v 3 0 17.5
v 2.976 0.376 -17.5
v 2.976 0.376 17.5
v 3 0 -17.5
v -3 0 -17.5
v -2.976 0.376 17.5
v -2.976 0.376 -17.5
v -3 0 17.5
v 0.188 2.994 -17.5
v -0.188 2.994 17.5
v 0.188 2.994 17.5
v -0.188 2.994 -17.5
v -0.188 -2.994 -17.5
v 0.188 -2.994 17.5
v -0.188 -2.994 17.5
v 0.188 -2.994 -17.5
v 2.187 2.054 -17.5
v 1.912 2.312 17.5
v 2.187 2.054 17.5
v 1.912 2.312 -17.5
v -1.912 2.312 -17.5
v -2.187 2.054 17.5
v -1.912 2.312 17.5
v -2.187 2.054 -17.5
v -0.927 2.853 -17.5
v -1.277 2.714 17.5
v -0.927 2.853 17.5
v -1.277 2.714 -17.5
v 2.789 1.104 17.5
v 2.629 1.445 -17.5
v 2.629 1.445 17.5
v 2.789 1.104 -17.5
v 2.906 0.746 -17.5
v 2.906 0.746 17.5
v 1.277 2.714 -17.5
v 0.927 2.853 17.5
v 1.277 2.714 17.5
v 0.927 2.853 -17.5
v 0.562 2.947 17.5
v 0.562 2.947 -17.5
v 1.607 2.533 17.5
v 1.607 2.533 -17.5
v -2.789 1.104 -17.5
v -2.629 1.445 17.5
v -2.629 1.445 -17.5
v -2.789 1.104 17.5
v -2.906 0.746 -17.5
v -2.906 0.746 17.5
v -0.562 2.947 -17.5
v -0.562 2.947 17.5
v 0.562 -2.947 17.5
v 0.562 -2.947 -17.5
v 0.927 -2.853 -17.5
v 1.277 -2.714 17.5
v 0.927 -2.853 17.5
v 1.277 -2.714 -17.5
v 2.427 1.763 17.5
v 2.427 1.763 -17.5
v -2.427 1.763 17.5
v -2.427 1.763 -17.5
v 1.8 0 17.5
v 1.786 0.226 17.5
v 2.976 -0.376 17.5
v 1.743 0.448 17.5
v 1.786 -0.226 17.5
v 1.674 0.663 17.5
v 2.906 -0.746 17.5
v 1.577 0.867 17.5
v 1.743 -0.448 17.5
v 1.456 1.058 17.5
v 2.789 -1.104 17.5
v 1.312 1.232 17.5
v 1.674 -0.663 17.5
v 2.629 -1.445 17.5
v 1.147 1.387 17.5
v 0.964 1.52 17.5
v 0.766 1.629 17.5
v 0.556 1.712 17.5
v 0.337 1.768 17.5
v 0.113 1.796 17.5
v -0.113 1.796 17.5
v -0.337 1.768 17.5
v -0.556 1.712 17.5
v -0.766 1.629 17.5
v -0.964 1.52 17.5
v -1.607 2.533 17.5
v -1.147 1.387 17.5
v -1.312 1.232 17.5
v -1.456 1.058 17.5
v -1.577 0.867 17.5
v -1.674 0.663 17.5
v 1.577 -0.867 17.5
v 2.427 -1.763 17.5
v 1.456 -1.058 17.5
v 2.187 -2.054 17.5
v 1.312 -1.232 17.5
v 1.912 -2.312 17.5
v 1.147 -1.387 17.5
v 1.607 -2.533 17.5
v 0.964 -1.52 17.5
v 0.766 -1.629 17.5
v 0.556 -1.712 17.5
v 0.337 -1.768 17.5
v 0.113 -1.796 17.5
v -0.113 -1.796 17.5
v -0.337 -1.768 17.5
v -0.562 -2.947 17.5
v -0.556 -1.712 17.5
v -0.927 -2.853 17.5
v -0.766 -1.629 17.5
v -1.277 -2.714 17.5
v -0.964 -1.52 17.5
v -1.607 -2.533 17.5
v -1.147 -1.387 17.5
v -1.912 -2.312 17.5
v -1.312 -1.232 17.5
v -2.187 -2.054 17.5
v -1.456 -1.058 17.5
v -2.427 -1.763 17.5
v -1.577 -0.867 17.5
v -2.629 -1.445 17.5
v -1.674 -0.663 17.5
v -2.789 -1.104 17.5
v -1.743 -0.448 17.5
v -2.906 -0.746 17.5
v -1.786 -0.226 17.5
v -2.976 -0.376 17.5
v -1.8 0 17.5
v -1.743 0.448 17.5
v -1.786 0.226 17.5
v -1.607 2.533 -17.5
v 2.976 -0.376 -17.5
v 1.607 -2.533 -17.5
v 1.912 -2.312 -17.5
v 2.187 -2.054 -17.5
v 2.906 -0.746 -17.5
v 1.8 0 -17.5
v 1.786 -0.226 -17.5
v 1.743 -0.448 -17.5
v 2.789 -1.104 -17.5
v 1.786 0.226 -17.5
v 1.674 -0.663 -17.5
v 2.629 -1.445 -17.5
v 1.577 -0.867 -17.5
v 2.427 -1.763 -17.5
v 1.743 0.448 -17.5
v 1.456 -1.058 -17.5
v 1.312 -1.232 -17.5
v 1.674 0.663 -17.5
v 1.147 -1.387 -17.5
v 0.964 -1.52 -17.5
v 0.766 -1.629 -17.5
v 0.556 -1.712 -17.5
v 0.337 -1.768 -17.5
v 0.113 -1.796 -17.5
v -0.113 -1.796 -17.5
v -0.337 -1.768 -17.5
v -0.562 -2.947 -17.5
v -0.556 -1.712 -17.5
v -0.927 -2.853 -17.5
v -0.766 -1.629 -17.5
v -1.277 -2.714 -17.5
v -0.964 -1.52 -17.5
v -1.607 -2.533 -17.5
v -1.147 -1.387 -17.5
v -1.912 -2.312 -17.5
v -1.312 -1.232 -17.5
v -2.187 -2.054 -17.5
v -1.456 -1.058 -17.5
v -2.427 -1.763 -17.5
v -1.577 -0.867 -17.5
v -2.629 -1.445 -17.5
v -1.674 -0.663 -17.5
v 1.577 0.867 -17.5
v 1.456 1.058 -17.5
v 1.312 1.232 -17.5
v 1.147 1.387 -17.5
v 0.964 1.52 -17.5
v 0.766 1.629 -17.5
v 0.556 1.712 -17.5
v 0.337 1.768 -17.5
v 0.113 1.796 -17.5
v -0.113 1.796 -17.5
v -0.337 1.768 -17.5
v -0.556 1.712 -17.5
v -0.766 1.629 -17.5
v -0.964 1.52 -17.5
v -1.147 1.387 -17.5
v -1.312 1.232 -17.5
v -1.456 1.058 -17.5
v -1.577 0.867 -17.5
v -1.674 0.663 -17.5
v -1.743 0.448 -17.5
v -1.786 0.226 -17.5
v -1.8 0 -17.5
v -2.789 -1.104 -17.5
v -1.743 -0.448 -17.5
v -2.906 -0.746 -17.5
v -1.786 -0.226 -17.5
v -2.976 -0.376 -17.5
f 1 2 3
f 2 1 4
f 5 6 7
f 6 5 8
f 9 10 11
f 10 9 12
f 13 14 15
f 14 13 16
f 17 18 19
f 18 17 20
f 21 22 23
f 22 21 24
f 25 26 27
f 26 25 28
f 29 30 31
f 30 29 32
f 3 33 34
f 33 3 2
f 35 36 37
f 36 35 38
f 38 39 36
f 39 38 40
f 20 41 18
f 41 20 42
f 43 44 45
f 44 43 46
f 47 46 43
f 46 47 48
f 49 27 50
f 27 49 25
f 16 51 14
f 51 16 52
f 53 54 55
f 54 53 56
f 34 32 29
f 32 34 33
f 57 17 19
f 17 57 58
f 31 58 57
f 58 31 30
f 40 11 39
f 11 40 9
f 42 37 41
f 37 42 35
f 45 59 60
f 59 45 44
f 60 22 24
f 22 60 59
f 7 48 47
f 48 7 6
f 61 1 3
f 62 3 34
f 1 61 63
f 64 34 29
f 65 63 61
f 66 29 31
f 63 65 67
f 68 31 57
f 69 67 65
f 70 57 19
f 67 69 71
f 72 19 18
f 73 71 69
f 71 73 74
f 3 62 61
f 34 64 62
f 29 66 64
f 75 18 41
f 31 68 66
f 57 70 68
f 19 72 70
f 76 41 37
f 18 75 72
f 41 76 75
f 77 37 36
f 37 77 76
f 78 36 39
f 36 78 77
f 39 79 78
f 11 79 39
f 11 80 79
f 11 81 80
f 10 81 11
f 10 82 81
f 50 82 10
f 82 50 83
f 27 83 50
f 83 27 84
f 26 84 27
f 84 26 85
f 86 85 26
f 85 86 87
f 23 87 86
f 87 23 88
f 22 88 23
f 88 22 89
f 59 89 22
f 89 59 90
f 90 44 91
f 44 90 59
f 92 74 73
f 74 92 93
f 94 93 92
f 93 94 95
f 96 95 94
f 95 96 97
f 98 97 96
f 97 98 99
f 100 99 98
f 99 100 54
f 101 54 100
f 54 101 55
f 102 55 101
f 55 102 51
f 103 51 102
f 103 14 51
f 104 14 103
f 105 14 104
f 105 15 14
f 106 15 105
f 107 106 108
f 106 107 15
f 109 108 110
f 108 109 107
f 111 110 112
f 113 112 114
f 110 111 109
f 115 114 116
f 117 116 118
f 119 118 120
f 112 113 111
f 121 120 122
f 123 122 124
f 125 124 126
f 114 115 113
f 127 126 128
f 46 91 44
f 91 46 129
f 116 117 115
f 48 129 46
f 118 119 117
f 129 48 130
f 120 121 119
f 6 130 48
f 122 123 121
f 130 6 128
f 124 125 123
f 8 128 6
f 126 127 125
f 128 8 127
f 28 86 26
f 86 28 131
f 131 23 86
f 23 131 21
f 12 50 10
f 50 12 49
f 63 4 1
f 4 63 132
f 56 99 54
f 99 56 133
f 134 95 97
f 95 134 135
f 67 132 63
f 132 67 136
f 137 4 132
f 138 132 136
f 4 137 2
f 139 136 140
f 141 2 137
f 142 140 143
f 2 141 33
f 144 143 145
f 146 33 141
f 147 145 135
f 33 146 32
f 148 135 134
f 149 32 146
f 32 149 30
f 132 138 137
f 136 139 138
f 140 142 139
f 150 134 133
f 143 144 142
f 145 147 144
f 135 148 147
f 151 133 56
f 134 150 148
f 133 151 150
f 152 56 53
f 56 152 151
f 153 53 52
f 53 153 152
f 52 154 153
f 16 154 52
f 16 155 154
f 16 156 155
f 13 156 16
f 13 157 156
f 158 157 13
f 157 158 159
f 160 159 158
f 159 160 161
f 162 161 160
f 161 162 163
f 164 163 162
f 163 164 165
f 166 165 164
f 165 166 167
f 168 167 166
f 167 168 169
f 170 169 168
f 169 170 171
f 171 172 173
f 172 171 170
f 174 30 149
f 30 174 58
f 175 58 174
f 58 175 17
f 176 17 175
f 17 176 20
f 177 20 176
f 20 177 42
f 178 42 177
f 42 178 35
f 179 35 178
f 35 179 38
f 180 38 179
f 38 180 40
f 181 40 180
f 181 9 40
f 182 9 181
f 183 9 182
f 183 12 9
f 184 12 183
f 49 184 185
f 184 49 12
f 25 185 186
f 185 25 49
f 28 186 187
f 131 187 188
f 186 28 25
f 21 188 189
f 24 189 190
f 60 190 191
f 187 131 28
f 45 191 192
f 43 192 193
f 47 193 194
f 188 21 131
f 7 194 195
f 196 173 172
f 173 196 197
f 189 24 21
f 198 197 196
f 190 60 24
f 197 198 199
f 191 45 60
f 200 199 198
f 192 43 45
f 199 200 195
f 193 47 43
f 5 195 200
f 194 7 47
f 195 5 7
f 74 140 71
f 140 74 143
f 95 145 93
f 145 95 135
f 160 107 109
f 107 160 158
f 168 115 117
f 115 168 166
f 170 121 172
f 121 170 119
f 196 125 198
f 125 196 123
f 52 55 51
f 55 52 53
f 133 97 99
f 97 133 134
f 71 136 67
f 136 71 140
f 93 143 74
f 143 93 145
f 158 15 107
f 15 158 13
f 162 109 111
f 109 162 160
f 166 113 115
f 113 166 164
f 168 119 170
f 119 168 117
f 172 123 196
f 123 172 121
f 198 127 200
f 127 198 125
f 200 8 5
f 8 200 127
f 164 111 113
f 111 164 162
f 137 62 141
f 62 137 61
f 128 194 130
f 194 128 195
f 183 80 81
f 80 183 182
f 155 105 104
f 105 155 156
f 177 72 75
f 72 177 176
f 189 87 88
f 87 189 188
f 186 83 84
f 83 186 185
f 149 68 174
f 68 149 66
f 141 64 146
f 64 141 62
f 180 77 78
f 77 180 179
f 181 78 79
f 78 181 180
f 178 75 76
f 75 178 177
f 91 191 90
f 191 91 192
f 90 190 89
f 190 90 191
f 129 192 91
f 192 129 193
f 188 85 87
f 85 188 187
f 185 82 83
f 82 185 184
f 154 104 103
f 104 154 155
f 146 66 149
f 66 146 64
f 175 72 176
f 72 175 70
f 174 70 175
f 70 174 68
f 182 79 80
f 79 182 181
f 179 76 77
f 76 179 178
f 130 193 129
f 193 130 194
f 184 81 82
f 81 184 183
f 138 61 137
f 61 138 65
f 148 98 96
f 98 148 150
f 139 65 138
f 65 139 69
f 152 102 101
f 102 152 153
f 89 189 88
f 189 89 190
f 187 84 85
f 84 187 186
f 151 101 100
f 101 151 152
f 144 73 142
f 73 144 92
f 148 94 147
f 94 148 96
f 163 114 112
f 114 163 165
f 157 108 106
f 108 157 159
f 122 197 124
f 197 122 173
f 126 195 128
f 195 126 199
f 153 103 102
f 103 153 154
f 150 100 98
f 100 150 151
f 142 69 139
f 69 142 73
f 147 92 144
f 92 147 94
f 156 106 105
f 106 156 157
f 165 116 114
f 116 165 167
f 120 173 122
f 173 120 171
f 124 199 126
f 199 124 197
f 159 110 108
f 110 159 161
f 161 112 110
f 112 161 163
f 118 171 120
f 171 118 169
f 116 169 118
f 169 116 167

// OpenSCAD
$fn = 50;


difference() {
	union() {
		translate(v = [0, 0, -17.5000000000]) {
			cylinder(h = 35, r = 3.0000000000);
		}
	}
	union() {
		translate(v = [0, 0, -100.0000000000]) {
			cylinder(h = 200, r = 1.8000000000);
		}
	}
}
